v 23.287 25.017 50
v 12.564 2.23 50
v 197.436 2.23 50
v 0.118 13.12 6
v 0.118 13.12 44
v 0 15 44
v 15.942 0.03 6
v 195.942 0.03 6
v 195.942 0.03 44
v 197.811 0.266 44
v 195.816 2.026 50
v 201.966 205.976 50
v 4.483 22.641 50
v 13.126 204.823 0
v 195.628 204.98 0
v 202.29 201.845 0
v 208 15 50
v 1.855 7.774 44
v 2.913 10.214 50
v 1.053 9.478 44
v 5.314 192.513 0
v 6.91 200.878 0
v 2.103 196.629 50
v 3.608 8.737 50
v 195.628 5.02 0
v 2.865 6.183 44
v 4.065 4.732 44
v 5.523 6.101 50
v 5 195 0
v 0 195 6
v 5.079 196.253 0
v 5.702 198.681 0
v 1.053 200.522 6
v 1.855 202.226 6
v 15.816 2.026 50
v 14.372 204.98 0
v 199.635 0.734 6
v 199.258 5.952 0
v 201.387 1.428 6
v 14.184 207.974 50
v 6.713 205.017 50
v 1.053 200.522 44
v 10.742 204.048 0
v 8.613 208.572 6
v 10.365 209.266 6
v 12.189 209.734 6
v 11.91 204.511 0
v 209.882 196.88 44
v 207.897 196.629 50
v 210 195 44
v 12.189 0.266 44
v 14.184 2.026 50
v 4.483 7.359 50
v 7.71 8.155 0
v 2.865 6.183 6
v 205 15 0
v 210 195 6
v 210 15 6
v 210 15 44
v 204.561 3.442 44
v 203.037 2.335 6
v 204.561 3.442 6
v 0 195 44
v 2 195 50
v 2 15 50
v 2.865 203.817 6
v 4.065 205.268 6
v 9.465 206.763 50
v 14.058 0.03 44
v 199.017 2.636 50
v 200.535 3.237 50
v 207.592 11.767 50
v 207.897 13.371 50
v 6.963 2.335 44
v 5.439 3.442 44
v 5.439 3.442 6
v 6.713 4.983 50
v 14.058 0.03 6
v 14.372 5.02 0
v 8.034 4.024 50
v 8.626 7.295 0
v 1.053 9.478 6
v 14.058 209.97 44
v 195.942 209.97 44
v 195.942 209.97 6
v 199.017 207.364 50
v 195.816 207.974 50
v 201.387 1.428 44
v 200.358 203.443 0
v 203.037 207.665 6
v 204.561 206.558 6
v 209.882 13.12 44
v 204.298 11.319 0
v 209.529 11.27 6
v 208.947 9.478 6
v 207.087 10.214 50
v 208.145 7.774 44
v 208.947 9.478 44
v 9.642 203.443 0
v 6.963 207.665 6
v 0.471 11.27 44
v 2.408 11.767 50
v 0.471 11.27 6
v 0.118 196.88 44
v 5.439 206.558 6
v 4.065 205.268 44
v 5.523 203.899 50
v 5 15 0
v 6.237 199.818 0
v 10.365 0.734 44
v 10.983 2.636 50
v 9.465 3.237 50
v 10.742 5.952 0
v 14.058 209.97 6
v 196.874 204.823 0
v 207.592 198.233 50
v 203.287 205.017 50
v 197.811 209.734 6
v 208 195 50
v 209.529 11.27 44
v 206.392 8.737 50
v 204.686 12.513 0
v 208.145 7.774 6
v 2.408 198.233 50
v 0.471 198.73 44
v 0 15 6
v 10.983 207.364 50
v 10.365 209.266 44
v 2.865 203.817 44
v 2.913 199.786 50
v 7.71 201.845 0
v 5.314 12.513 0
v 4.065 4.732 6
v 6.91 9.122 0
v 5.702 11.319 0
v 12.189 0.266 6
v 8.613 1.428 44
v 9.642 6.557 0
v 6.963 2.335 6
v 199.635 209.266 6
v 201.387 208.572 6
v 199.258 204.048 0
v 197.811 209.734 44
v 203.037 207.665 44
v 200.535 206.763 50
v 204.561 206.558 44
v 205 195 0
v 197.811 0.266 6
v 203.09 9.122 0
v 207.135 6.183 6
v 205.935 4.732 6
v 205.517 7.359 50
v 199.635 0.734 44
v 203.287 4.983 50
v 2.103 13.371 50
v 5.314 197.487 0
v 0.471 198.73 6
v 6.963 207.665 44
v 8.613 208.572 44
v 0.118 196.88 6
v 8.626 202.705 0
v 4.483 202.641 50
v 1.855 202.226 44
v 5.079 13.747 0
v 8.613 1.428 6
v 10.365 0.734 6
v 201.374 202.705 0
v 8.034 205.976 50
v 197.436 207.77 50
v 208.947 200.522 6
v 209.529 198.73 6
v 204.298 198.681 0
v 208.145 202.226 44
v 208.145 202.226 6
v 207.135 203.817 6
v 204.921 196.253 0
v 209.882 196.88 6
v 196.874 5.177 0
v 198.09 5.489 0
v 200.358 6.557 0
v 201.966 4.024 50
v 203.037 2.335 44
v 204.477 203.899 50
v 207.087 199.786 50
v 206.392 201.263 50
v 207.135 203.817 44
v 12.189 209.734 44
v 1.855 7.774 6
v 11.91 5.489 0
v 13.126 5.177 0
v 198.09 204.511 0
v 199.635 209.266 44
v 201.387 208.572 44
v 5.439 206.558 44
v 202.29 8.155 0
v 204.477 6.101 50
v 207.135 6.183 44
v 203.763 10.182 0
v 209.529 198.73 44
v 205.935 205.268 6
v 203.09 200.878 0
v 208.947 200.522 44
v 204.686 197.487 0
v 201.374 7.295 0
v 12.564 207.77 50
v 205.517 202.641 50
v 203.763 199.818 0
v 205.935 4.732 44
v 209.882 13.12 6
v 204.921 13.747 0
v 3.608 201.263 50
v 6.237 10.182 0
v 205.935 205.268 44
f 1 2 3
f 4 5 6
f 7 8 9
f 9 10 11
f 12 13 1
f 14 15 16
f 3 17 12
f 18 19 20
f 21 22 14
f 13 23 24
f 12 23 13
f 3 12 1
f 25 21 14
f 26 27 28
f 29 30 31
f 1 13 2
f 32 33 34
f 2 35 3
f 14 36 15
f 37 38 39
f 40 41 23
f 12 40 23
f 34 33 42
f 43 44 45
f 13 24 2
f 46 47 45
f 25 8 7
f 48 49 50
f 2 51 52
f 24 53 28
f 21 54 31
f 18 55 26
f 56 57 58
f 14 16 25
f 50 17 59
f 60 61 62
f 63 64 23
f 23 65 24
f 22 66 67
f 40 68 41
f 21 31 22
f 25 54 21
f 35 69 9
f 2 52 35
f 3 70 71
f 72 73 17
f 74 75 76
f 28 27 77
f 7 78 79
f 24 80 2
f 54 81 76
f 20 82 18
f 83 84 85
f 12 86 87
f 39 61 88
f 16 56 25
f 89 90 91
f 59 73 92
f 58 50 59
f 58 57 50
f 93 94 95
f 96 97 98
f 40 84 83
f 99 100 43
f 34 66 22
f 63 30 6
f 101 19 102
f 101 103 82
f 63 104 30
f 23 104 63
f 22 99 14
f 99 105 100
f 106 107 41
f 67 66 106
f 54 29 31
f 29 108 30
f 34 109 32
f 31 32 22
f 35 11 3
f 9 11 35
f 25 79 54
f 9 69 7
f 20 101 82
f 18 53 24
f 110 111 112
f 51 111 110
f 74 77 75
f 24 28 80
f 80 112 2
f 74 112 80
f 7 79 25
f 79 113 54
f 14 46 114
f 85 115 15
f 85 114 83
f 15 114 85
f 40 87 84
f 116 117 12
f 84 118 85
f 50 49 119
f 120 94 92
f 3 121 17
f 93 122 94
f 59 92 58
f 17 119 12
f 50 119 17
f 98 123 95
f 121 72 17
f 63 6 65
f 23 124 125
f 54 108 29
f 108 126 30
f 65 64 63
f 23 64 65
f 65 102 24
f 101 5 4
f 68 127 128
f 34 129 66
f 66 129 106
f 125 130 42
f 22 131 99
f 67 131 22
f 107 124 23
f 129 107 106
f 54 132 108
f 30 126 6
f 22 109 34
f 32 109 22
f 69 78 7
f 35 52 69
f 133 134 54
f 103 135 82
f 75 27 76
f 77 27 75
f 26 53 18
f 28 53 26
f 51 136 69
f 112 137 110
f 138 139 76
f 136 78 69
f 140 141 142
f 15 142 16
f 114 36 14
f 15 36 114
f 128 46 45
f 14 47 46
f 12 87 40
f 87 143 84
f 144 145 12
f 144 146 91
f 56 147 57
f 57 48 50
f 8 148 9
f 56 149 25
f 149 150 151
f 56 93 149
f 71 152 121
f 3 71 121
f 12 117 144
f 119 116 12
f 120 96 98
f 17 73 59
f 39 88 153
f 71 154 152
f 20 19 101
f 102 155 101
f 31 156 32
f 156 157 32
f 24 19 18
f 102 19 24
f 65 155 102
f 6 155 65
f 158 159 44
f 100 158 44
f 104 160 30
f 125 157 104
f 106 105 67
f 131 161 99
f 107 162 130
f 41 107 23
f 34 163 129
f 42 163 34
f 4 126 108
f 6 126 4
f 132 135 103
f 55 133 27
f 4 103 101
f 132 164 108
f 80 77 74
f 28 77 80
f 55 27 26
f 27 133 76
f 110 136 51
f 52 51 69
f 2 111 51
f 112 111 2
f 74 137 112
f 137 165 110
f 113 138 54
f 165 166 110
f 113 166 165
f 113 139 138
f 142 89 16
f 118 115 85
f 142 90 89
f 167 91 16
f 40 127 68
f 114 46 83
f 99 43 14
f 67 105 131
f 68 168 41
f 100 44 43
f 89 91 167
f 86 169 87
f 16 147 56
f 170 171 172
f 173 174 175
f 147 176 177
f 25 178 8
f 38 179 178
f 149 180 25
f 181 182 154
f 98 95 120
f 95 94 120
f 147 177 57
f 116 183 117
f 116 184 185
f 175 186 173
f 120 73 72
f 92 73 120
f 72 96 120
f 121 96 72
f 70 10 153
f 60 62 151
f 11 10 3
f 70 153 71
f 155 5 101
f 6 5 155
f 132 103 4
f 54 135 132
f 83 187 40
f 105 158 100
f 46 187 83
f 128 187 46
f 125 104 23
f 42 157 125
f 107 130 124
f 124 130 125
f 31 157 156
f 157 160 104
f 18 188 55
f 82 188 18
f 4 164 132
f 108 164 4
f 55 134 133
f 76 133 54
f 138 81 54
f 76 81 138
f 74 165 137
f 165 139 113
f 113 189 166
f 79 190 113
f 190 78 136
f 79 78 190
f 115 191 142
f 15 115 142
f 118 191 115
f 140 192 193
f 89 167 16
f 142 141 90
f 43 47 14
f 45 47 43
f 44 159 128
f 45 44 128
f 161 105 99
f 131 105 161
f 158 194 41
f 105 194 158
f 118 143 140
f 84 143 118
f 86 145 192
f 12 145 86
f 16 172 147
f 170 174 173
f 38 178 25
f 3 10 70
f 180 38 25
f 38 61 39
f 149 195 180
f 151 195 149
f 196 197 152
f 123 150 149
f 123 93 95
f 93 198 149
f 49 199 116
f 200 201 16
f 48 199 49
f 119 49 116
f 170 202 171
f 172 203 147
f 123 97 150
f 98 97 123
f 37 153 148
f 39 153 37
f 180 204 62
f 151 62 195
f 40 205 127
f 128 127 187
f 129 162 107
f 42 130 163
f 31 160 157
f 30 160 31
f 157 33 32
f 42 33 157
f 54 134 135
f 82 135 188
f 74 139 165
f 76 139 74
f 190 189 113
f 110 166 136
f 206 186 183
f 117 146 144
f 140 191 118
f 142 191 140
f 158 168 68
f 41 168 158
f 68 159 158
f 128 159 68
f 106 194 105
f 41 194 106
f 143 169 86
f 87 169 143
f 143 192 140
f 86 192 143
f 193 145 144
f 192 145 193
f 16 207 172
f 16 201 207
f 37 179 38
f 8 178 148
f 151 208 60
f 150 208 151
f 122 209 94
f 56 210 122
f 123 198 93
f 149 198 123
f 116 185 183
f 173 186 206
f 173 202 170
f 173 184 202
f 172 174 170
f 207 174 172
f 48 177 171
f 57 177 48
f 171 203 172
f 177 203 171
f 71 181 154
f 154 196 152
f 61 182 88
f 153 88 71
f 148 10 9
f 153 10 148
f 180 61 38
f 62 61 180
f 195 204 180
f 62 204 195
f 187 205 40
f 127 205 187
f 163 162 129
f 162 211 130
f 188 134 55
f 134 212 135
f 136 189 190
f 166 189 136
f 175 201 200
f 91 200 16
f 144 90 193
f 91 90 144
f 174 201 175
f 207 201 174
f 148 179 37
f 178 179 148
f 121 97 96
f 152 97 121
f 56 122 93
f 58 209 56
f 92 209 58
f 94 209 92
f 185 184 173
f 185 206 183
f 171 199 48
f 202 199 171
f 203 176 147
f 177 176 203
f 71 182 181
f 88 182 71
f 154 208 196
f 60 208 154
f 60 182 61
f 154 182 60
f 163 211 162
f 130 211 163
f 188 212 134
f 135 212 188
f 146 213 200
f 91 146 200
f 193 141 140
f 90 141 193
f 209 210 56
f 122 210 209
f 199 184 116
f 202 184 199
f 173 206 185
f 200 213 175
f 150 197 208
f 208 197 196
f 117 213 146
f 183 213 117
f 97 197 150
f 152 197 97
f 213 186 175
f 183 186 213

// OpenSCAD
// file: ../../vermicomposter.scad
eps=1/128;
$fn=50;

vermicomposter();


module vermicomposter(
    size = [210, 210, 100],
    column_d = 6,
    column_s = 3,  // column separation
    notch = 60,
    notch_var = 7,
    box_radius = 15,
    box_top = 6,
    box_top_r = 13,
    box_bottom = 6,
    box_bottom_r = 10
){
    box(size, box_radius, box_bottom_r, box_top_r, box_top, box_bottom);
    
    columnT = column_d + column_s;
    columnsL = floor((size[0] - 2*box_radius) / columnT);
    offsetL = column_d/2 + (size[0]-(columnsL*(column_d+column_s) - column_s))/2;
    
    column_h = size[2] - box_top - box_bottom;
    z =(size[2] - column_h)/2;
    
    for(a = [0 : columnsL - 1]){
        n = notch + (a%2 ? notch_var : -notch_var);
        x = offsetL + a * columnT;
        
        translate([x,0,z])
            column(column_d, column_h, n);
        translate([x,size[1],z]) 
            rotate(180) column(column_d, column_h, n);
    }
    
    columnsW = floor((size[1] - 2*box_radius) / columnT);
    offsetW = column_d/2 + (size[1]-(columnsW*(column_d+column_s) - column_s))/2;
    for(a = [0 : columnsW - 1]){
        n = notch + (a%2 ? notch_var : -notch_var);
        y =offsetW + a * columnT;
        
        translate([0,y,z]) 
            rotate(-90) column(column_d, column_h, n);
        translate([size[0],y,z]) 
            rotate(90) column(column_d, column_h, n);
    }
    
}

module box(
    size = [200, 100, 50],
    radius = 15,
    bottom_r = 6,
    top_r = 6,
    top = 6,
    bottom = 6
){
    translate([radius,radius,0]){
        hull() 
        for(i = [0 : 1]){
            for(j = [0 : 1]){
                translate([i*(size[0]-2*radius),j*(size[1]-2*radius),0]){
                    translate([0,0,0])cylinder(r1=bottom_r, r2=radius, h=bottom);
                    translate([0,0,bottom]) cylinder(r=radius,h=size[2]-top-bottom);
                    translate([0,0,size[2]-top]) cylinder(r1=radius, r2=top_r, h=top);
                }
            }
        }
    }
}

//!column();

module column(
    d = 10,
    h = 40,
    notch_h = 20
    
){
    scale([1,0.8,1]) difference(){
        union(){
            cylinder(r1=0, r2=d/2, h=d);
            translate([0,0,d]) cylinder(h=h - 2*d, d=d);
            translate([0,0,h-d]) cylinder(r1=d/2, r2=0, h=d);
        }
        if (notch_h >= d){        
            translate([d/2,0,notch_h]) rotate([0,-90,0]) linear_extrude(d) polygon(points = [
                [0,0],
                [0,-d],
                [sqrt(pow(d,2) - pow(d/2,2)),-d/2]
            ]);
        }
    }
}
// main file
use <../../vermicomposter.scad>


vermicomposter(
    size = [210, 210, 50],
    column_d = 0,
    column_s = 3,  // column separation
    notch = 0,
    notch_var = 0
);
